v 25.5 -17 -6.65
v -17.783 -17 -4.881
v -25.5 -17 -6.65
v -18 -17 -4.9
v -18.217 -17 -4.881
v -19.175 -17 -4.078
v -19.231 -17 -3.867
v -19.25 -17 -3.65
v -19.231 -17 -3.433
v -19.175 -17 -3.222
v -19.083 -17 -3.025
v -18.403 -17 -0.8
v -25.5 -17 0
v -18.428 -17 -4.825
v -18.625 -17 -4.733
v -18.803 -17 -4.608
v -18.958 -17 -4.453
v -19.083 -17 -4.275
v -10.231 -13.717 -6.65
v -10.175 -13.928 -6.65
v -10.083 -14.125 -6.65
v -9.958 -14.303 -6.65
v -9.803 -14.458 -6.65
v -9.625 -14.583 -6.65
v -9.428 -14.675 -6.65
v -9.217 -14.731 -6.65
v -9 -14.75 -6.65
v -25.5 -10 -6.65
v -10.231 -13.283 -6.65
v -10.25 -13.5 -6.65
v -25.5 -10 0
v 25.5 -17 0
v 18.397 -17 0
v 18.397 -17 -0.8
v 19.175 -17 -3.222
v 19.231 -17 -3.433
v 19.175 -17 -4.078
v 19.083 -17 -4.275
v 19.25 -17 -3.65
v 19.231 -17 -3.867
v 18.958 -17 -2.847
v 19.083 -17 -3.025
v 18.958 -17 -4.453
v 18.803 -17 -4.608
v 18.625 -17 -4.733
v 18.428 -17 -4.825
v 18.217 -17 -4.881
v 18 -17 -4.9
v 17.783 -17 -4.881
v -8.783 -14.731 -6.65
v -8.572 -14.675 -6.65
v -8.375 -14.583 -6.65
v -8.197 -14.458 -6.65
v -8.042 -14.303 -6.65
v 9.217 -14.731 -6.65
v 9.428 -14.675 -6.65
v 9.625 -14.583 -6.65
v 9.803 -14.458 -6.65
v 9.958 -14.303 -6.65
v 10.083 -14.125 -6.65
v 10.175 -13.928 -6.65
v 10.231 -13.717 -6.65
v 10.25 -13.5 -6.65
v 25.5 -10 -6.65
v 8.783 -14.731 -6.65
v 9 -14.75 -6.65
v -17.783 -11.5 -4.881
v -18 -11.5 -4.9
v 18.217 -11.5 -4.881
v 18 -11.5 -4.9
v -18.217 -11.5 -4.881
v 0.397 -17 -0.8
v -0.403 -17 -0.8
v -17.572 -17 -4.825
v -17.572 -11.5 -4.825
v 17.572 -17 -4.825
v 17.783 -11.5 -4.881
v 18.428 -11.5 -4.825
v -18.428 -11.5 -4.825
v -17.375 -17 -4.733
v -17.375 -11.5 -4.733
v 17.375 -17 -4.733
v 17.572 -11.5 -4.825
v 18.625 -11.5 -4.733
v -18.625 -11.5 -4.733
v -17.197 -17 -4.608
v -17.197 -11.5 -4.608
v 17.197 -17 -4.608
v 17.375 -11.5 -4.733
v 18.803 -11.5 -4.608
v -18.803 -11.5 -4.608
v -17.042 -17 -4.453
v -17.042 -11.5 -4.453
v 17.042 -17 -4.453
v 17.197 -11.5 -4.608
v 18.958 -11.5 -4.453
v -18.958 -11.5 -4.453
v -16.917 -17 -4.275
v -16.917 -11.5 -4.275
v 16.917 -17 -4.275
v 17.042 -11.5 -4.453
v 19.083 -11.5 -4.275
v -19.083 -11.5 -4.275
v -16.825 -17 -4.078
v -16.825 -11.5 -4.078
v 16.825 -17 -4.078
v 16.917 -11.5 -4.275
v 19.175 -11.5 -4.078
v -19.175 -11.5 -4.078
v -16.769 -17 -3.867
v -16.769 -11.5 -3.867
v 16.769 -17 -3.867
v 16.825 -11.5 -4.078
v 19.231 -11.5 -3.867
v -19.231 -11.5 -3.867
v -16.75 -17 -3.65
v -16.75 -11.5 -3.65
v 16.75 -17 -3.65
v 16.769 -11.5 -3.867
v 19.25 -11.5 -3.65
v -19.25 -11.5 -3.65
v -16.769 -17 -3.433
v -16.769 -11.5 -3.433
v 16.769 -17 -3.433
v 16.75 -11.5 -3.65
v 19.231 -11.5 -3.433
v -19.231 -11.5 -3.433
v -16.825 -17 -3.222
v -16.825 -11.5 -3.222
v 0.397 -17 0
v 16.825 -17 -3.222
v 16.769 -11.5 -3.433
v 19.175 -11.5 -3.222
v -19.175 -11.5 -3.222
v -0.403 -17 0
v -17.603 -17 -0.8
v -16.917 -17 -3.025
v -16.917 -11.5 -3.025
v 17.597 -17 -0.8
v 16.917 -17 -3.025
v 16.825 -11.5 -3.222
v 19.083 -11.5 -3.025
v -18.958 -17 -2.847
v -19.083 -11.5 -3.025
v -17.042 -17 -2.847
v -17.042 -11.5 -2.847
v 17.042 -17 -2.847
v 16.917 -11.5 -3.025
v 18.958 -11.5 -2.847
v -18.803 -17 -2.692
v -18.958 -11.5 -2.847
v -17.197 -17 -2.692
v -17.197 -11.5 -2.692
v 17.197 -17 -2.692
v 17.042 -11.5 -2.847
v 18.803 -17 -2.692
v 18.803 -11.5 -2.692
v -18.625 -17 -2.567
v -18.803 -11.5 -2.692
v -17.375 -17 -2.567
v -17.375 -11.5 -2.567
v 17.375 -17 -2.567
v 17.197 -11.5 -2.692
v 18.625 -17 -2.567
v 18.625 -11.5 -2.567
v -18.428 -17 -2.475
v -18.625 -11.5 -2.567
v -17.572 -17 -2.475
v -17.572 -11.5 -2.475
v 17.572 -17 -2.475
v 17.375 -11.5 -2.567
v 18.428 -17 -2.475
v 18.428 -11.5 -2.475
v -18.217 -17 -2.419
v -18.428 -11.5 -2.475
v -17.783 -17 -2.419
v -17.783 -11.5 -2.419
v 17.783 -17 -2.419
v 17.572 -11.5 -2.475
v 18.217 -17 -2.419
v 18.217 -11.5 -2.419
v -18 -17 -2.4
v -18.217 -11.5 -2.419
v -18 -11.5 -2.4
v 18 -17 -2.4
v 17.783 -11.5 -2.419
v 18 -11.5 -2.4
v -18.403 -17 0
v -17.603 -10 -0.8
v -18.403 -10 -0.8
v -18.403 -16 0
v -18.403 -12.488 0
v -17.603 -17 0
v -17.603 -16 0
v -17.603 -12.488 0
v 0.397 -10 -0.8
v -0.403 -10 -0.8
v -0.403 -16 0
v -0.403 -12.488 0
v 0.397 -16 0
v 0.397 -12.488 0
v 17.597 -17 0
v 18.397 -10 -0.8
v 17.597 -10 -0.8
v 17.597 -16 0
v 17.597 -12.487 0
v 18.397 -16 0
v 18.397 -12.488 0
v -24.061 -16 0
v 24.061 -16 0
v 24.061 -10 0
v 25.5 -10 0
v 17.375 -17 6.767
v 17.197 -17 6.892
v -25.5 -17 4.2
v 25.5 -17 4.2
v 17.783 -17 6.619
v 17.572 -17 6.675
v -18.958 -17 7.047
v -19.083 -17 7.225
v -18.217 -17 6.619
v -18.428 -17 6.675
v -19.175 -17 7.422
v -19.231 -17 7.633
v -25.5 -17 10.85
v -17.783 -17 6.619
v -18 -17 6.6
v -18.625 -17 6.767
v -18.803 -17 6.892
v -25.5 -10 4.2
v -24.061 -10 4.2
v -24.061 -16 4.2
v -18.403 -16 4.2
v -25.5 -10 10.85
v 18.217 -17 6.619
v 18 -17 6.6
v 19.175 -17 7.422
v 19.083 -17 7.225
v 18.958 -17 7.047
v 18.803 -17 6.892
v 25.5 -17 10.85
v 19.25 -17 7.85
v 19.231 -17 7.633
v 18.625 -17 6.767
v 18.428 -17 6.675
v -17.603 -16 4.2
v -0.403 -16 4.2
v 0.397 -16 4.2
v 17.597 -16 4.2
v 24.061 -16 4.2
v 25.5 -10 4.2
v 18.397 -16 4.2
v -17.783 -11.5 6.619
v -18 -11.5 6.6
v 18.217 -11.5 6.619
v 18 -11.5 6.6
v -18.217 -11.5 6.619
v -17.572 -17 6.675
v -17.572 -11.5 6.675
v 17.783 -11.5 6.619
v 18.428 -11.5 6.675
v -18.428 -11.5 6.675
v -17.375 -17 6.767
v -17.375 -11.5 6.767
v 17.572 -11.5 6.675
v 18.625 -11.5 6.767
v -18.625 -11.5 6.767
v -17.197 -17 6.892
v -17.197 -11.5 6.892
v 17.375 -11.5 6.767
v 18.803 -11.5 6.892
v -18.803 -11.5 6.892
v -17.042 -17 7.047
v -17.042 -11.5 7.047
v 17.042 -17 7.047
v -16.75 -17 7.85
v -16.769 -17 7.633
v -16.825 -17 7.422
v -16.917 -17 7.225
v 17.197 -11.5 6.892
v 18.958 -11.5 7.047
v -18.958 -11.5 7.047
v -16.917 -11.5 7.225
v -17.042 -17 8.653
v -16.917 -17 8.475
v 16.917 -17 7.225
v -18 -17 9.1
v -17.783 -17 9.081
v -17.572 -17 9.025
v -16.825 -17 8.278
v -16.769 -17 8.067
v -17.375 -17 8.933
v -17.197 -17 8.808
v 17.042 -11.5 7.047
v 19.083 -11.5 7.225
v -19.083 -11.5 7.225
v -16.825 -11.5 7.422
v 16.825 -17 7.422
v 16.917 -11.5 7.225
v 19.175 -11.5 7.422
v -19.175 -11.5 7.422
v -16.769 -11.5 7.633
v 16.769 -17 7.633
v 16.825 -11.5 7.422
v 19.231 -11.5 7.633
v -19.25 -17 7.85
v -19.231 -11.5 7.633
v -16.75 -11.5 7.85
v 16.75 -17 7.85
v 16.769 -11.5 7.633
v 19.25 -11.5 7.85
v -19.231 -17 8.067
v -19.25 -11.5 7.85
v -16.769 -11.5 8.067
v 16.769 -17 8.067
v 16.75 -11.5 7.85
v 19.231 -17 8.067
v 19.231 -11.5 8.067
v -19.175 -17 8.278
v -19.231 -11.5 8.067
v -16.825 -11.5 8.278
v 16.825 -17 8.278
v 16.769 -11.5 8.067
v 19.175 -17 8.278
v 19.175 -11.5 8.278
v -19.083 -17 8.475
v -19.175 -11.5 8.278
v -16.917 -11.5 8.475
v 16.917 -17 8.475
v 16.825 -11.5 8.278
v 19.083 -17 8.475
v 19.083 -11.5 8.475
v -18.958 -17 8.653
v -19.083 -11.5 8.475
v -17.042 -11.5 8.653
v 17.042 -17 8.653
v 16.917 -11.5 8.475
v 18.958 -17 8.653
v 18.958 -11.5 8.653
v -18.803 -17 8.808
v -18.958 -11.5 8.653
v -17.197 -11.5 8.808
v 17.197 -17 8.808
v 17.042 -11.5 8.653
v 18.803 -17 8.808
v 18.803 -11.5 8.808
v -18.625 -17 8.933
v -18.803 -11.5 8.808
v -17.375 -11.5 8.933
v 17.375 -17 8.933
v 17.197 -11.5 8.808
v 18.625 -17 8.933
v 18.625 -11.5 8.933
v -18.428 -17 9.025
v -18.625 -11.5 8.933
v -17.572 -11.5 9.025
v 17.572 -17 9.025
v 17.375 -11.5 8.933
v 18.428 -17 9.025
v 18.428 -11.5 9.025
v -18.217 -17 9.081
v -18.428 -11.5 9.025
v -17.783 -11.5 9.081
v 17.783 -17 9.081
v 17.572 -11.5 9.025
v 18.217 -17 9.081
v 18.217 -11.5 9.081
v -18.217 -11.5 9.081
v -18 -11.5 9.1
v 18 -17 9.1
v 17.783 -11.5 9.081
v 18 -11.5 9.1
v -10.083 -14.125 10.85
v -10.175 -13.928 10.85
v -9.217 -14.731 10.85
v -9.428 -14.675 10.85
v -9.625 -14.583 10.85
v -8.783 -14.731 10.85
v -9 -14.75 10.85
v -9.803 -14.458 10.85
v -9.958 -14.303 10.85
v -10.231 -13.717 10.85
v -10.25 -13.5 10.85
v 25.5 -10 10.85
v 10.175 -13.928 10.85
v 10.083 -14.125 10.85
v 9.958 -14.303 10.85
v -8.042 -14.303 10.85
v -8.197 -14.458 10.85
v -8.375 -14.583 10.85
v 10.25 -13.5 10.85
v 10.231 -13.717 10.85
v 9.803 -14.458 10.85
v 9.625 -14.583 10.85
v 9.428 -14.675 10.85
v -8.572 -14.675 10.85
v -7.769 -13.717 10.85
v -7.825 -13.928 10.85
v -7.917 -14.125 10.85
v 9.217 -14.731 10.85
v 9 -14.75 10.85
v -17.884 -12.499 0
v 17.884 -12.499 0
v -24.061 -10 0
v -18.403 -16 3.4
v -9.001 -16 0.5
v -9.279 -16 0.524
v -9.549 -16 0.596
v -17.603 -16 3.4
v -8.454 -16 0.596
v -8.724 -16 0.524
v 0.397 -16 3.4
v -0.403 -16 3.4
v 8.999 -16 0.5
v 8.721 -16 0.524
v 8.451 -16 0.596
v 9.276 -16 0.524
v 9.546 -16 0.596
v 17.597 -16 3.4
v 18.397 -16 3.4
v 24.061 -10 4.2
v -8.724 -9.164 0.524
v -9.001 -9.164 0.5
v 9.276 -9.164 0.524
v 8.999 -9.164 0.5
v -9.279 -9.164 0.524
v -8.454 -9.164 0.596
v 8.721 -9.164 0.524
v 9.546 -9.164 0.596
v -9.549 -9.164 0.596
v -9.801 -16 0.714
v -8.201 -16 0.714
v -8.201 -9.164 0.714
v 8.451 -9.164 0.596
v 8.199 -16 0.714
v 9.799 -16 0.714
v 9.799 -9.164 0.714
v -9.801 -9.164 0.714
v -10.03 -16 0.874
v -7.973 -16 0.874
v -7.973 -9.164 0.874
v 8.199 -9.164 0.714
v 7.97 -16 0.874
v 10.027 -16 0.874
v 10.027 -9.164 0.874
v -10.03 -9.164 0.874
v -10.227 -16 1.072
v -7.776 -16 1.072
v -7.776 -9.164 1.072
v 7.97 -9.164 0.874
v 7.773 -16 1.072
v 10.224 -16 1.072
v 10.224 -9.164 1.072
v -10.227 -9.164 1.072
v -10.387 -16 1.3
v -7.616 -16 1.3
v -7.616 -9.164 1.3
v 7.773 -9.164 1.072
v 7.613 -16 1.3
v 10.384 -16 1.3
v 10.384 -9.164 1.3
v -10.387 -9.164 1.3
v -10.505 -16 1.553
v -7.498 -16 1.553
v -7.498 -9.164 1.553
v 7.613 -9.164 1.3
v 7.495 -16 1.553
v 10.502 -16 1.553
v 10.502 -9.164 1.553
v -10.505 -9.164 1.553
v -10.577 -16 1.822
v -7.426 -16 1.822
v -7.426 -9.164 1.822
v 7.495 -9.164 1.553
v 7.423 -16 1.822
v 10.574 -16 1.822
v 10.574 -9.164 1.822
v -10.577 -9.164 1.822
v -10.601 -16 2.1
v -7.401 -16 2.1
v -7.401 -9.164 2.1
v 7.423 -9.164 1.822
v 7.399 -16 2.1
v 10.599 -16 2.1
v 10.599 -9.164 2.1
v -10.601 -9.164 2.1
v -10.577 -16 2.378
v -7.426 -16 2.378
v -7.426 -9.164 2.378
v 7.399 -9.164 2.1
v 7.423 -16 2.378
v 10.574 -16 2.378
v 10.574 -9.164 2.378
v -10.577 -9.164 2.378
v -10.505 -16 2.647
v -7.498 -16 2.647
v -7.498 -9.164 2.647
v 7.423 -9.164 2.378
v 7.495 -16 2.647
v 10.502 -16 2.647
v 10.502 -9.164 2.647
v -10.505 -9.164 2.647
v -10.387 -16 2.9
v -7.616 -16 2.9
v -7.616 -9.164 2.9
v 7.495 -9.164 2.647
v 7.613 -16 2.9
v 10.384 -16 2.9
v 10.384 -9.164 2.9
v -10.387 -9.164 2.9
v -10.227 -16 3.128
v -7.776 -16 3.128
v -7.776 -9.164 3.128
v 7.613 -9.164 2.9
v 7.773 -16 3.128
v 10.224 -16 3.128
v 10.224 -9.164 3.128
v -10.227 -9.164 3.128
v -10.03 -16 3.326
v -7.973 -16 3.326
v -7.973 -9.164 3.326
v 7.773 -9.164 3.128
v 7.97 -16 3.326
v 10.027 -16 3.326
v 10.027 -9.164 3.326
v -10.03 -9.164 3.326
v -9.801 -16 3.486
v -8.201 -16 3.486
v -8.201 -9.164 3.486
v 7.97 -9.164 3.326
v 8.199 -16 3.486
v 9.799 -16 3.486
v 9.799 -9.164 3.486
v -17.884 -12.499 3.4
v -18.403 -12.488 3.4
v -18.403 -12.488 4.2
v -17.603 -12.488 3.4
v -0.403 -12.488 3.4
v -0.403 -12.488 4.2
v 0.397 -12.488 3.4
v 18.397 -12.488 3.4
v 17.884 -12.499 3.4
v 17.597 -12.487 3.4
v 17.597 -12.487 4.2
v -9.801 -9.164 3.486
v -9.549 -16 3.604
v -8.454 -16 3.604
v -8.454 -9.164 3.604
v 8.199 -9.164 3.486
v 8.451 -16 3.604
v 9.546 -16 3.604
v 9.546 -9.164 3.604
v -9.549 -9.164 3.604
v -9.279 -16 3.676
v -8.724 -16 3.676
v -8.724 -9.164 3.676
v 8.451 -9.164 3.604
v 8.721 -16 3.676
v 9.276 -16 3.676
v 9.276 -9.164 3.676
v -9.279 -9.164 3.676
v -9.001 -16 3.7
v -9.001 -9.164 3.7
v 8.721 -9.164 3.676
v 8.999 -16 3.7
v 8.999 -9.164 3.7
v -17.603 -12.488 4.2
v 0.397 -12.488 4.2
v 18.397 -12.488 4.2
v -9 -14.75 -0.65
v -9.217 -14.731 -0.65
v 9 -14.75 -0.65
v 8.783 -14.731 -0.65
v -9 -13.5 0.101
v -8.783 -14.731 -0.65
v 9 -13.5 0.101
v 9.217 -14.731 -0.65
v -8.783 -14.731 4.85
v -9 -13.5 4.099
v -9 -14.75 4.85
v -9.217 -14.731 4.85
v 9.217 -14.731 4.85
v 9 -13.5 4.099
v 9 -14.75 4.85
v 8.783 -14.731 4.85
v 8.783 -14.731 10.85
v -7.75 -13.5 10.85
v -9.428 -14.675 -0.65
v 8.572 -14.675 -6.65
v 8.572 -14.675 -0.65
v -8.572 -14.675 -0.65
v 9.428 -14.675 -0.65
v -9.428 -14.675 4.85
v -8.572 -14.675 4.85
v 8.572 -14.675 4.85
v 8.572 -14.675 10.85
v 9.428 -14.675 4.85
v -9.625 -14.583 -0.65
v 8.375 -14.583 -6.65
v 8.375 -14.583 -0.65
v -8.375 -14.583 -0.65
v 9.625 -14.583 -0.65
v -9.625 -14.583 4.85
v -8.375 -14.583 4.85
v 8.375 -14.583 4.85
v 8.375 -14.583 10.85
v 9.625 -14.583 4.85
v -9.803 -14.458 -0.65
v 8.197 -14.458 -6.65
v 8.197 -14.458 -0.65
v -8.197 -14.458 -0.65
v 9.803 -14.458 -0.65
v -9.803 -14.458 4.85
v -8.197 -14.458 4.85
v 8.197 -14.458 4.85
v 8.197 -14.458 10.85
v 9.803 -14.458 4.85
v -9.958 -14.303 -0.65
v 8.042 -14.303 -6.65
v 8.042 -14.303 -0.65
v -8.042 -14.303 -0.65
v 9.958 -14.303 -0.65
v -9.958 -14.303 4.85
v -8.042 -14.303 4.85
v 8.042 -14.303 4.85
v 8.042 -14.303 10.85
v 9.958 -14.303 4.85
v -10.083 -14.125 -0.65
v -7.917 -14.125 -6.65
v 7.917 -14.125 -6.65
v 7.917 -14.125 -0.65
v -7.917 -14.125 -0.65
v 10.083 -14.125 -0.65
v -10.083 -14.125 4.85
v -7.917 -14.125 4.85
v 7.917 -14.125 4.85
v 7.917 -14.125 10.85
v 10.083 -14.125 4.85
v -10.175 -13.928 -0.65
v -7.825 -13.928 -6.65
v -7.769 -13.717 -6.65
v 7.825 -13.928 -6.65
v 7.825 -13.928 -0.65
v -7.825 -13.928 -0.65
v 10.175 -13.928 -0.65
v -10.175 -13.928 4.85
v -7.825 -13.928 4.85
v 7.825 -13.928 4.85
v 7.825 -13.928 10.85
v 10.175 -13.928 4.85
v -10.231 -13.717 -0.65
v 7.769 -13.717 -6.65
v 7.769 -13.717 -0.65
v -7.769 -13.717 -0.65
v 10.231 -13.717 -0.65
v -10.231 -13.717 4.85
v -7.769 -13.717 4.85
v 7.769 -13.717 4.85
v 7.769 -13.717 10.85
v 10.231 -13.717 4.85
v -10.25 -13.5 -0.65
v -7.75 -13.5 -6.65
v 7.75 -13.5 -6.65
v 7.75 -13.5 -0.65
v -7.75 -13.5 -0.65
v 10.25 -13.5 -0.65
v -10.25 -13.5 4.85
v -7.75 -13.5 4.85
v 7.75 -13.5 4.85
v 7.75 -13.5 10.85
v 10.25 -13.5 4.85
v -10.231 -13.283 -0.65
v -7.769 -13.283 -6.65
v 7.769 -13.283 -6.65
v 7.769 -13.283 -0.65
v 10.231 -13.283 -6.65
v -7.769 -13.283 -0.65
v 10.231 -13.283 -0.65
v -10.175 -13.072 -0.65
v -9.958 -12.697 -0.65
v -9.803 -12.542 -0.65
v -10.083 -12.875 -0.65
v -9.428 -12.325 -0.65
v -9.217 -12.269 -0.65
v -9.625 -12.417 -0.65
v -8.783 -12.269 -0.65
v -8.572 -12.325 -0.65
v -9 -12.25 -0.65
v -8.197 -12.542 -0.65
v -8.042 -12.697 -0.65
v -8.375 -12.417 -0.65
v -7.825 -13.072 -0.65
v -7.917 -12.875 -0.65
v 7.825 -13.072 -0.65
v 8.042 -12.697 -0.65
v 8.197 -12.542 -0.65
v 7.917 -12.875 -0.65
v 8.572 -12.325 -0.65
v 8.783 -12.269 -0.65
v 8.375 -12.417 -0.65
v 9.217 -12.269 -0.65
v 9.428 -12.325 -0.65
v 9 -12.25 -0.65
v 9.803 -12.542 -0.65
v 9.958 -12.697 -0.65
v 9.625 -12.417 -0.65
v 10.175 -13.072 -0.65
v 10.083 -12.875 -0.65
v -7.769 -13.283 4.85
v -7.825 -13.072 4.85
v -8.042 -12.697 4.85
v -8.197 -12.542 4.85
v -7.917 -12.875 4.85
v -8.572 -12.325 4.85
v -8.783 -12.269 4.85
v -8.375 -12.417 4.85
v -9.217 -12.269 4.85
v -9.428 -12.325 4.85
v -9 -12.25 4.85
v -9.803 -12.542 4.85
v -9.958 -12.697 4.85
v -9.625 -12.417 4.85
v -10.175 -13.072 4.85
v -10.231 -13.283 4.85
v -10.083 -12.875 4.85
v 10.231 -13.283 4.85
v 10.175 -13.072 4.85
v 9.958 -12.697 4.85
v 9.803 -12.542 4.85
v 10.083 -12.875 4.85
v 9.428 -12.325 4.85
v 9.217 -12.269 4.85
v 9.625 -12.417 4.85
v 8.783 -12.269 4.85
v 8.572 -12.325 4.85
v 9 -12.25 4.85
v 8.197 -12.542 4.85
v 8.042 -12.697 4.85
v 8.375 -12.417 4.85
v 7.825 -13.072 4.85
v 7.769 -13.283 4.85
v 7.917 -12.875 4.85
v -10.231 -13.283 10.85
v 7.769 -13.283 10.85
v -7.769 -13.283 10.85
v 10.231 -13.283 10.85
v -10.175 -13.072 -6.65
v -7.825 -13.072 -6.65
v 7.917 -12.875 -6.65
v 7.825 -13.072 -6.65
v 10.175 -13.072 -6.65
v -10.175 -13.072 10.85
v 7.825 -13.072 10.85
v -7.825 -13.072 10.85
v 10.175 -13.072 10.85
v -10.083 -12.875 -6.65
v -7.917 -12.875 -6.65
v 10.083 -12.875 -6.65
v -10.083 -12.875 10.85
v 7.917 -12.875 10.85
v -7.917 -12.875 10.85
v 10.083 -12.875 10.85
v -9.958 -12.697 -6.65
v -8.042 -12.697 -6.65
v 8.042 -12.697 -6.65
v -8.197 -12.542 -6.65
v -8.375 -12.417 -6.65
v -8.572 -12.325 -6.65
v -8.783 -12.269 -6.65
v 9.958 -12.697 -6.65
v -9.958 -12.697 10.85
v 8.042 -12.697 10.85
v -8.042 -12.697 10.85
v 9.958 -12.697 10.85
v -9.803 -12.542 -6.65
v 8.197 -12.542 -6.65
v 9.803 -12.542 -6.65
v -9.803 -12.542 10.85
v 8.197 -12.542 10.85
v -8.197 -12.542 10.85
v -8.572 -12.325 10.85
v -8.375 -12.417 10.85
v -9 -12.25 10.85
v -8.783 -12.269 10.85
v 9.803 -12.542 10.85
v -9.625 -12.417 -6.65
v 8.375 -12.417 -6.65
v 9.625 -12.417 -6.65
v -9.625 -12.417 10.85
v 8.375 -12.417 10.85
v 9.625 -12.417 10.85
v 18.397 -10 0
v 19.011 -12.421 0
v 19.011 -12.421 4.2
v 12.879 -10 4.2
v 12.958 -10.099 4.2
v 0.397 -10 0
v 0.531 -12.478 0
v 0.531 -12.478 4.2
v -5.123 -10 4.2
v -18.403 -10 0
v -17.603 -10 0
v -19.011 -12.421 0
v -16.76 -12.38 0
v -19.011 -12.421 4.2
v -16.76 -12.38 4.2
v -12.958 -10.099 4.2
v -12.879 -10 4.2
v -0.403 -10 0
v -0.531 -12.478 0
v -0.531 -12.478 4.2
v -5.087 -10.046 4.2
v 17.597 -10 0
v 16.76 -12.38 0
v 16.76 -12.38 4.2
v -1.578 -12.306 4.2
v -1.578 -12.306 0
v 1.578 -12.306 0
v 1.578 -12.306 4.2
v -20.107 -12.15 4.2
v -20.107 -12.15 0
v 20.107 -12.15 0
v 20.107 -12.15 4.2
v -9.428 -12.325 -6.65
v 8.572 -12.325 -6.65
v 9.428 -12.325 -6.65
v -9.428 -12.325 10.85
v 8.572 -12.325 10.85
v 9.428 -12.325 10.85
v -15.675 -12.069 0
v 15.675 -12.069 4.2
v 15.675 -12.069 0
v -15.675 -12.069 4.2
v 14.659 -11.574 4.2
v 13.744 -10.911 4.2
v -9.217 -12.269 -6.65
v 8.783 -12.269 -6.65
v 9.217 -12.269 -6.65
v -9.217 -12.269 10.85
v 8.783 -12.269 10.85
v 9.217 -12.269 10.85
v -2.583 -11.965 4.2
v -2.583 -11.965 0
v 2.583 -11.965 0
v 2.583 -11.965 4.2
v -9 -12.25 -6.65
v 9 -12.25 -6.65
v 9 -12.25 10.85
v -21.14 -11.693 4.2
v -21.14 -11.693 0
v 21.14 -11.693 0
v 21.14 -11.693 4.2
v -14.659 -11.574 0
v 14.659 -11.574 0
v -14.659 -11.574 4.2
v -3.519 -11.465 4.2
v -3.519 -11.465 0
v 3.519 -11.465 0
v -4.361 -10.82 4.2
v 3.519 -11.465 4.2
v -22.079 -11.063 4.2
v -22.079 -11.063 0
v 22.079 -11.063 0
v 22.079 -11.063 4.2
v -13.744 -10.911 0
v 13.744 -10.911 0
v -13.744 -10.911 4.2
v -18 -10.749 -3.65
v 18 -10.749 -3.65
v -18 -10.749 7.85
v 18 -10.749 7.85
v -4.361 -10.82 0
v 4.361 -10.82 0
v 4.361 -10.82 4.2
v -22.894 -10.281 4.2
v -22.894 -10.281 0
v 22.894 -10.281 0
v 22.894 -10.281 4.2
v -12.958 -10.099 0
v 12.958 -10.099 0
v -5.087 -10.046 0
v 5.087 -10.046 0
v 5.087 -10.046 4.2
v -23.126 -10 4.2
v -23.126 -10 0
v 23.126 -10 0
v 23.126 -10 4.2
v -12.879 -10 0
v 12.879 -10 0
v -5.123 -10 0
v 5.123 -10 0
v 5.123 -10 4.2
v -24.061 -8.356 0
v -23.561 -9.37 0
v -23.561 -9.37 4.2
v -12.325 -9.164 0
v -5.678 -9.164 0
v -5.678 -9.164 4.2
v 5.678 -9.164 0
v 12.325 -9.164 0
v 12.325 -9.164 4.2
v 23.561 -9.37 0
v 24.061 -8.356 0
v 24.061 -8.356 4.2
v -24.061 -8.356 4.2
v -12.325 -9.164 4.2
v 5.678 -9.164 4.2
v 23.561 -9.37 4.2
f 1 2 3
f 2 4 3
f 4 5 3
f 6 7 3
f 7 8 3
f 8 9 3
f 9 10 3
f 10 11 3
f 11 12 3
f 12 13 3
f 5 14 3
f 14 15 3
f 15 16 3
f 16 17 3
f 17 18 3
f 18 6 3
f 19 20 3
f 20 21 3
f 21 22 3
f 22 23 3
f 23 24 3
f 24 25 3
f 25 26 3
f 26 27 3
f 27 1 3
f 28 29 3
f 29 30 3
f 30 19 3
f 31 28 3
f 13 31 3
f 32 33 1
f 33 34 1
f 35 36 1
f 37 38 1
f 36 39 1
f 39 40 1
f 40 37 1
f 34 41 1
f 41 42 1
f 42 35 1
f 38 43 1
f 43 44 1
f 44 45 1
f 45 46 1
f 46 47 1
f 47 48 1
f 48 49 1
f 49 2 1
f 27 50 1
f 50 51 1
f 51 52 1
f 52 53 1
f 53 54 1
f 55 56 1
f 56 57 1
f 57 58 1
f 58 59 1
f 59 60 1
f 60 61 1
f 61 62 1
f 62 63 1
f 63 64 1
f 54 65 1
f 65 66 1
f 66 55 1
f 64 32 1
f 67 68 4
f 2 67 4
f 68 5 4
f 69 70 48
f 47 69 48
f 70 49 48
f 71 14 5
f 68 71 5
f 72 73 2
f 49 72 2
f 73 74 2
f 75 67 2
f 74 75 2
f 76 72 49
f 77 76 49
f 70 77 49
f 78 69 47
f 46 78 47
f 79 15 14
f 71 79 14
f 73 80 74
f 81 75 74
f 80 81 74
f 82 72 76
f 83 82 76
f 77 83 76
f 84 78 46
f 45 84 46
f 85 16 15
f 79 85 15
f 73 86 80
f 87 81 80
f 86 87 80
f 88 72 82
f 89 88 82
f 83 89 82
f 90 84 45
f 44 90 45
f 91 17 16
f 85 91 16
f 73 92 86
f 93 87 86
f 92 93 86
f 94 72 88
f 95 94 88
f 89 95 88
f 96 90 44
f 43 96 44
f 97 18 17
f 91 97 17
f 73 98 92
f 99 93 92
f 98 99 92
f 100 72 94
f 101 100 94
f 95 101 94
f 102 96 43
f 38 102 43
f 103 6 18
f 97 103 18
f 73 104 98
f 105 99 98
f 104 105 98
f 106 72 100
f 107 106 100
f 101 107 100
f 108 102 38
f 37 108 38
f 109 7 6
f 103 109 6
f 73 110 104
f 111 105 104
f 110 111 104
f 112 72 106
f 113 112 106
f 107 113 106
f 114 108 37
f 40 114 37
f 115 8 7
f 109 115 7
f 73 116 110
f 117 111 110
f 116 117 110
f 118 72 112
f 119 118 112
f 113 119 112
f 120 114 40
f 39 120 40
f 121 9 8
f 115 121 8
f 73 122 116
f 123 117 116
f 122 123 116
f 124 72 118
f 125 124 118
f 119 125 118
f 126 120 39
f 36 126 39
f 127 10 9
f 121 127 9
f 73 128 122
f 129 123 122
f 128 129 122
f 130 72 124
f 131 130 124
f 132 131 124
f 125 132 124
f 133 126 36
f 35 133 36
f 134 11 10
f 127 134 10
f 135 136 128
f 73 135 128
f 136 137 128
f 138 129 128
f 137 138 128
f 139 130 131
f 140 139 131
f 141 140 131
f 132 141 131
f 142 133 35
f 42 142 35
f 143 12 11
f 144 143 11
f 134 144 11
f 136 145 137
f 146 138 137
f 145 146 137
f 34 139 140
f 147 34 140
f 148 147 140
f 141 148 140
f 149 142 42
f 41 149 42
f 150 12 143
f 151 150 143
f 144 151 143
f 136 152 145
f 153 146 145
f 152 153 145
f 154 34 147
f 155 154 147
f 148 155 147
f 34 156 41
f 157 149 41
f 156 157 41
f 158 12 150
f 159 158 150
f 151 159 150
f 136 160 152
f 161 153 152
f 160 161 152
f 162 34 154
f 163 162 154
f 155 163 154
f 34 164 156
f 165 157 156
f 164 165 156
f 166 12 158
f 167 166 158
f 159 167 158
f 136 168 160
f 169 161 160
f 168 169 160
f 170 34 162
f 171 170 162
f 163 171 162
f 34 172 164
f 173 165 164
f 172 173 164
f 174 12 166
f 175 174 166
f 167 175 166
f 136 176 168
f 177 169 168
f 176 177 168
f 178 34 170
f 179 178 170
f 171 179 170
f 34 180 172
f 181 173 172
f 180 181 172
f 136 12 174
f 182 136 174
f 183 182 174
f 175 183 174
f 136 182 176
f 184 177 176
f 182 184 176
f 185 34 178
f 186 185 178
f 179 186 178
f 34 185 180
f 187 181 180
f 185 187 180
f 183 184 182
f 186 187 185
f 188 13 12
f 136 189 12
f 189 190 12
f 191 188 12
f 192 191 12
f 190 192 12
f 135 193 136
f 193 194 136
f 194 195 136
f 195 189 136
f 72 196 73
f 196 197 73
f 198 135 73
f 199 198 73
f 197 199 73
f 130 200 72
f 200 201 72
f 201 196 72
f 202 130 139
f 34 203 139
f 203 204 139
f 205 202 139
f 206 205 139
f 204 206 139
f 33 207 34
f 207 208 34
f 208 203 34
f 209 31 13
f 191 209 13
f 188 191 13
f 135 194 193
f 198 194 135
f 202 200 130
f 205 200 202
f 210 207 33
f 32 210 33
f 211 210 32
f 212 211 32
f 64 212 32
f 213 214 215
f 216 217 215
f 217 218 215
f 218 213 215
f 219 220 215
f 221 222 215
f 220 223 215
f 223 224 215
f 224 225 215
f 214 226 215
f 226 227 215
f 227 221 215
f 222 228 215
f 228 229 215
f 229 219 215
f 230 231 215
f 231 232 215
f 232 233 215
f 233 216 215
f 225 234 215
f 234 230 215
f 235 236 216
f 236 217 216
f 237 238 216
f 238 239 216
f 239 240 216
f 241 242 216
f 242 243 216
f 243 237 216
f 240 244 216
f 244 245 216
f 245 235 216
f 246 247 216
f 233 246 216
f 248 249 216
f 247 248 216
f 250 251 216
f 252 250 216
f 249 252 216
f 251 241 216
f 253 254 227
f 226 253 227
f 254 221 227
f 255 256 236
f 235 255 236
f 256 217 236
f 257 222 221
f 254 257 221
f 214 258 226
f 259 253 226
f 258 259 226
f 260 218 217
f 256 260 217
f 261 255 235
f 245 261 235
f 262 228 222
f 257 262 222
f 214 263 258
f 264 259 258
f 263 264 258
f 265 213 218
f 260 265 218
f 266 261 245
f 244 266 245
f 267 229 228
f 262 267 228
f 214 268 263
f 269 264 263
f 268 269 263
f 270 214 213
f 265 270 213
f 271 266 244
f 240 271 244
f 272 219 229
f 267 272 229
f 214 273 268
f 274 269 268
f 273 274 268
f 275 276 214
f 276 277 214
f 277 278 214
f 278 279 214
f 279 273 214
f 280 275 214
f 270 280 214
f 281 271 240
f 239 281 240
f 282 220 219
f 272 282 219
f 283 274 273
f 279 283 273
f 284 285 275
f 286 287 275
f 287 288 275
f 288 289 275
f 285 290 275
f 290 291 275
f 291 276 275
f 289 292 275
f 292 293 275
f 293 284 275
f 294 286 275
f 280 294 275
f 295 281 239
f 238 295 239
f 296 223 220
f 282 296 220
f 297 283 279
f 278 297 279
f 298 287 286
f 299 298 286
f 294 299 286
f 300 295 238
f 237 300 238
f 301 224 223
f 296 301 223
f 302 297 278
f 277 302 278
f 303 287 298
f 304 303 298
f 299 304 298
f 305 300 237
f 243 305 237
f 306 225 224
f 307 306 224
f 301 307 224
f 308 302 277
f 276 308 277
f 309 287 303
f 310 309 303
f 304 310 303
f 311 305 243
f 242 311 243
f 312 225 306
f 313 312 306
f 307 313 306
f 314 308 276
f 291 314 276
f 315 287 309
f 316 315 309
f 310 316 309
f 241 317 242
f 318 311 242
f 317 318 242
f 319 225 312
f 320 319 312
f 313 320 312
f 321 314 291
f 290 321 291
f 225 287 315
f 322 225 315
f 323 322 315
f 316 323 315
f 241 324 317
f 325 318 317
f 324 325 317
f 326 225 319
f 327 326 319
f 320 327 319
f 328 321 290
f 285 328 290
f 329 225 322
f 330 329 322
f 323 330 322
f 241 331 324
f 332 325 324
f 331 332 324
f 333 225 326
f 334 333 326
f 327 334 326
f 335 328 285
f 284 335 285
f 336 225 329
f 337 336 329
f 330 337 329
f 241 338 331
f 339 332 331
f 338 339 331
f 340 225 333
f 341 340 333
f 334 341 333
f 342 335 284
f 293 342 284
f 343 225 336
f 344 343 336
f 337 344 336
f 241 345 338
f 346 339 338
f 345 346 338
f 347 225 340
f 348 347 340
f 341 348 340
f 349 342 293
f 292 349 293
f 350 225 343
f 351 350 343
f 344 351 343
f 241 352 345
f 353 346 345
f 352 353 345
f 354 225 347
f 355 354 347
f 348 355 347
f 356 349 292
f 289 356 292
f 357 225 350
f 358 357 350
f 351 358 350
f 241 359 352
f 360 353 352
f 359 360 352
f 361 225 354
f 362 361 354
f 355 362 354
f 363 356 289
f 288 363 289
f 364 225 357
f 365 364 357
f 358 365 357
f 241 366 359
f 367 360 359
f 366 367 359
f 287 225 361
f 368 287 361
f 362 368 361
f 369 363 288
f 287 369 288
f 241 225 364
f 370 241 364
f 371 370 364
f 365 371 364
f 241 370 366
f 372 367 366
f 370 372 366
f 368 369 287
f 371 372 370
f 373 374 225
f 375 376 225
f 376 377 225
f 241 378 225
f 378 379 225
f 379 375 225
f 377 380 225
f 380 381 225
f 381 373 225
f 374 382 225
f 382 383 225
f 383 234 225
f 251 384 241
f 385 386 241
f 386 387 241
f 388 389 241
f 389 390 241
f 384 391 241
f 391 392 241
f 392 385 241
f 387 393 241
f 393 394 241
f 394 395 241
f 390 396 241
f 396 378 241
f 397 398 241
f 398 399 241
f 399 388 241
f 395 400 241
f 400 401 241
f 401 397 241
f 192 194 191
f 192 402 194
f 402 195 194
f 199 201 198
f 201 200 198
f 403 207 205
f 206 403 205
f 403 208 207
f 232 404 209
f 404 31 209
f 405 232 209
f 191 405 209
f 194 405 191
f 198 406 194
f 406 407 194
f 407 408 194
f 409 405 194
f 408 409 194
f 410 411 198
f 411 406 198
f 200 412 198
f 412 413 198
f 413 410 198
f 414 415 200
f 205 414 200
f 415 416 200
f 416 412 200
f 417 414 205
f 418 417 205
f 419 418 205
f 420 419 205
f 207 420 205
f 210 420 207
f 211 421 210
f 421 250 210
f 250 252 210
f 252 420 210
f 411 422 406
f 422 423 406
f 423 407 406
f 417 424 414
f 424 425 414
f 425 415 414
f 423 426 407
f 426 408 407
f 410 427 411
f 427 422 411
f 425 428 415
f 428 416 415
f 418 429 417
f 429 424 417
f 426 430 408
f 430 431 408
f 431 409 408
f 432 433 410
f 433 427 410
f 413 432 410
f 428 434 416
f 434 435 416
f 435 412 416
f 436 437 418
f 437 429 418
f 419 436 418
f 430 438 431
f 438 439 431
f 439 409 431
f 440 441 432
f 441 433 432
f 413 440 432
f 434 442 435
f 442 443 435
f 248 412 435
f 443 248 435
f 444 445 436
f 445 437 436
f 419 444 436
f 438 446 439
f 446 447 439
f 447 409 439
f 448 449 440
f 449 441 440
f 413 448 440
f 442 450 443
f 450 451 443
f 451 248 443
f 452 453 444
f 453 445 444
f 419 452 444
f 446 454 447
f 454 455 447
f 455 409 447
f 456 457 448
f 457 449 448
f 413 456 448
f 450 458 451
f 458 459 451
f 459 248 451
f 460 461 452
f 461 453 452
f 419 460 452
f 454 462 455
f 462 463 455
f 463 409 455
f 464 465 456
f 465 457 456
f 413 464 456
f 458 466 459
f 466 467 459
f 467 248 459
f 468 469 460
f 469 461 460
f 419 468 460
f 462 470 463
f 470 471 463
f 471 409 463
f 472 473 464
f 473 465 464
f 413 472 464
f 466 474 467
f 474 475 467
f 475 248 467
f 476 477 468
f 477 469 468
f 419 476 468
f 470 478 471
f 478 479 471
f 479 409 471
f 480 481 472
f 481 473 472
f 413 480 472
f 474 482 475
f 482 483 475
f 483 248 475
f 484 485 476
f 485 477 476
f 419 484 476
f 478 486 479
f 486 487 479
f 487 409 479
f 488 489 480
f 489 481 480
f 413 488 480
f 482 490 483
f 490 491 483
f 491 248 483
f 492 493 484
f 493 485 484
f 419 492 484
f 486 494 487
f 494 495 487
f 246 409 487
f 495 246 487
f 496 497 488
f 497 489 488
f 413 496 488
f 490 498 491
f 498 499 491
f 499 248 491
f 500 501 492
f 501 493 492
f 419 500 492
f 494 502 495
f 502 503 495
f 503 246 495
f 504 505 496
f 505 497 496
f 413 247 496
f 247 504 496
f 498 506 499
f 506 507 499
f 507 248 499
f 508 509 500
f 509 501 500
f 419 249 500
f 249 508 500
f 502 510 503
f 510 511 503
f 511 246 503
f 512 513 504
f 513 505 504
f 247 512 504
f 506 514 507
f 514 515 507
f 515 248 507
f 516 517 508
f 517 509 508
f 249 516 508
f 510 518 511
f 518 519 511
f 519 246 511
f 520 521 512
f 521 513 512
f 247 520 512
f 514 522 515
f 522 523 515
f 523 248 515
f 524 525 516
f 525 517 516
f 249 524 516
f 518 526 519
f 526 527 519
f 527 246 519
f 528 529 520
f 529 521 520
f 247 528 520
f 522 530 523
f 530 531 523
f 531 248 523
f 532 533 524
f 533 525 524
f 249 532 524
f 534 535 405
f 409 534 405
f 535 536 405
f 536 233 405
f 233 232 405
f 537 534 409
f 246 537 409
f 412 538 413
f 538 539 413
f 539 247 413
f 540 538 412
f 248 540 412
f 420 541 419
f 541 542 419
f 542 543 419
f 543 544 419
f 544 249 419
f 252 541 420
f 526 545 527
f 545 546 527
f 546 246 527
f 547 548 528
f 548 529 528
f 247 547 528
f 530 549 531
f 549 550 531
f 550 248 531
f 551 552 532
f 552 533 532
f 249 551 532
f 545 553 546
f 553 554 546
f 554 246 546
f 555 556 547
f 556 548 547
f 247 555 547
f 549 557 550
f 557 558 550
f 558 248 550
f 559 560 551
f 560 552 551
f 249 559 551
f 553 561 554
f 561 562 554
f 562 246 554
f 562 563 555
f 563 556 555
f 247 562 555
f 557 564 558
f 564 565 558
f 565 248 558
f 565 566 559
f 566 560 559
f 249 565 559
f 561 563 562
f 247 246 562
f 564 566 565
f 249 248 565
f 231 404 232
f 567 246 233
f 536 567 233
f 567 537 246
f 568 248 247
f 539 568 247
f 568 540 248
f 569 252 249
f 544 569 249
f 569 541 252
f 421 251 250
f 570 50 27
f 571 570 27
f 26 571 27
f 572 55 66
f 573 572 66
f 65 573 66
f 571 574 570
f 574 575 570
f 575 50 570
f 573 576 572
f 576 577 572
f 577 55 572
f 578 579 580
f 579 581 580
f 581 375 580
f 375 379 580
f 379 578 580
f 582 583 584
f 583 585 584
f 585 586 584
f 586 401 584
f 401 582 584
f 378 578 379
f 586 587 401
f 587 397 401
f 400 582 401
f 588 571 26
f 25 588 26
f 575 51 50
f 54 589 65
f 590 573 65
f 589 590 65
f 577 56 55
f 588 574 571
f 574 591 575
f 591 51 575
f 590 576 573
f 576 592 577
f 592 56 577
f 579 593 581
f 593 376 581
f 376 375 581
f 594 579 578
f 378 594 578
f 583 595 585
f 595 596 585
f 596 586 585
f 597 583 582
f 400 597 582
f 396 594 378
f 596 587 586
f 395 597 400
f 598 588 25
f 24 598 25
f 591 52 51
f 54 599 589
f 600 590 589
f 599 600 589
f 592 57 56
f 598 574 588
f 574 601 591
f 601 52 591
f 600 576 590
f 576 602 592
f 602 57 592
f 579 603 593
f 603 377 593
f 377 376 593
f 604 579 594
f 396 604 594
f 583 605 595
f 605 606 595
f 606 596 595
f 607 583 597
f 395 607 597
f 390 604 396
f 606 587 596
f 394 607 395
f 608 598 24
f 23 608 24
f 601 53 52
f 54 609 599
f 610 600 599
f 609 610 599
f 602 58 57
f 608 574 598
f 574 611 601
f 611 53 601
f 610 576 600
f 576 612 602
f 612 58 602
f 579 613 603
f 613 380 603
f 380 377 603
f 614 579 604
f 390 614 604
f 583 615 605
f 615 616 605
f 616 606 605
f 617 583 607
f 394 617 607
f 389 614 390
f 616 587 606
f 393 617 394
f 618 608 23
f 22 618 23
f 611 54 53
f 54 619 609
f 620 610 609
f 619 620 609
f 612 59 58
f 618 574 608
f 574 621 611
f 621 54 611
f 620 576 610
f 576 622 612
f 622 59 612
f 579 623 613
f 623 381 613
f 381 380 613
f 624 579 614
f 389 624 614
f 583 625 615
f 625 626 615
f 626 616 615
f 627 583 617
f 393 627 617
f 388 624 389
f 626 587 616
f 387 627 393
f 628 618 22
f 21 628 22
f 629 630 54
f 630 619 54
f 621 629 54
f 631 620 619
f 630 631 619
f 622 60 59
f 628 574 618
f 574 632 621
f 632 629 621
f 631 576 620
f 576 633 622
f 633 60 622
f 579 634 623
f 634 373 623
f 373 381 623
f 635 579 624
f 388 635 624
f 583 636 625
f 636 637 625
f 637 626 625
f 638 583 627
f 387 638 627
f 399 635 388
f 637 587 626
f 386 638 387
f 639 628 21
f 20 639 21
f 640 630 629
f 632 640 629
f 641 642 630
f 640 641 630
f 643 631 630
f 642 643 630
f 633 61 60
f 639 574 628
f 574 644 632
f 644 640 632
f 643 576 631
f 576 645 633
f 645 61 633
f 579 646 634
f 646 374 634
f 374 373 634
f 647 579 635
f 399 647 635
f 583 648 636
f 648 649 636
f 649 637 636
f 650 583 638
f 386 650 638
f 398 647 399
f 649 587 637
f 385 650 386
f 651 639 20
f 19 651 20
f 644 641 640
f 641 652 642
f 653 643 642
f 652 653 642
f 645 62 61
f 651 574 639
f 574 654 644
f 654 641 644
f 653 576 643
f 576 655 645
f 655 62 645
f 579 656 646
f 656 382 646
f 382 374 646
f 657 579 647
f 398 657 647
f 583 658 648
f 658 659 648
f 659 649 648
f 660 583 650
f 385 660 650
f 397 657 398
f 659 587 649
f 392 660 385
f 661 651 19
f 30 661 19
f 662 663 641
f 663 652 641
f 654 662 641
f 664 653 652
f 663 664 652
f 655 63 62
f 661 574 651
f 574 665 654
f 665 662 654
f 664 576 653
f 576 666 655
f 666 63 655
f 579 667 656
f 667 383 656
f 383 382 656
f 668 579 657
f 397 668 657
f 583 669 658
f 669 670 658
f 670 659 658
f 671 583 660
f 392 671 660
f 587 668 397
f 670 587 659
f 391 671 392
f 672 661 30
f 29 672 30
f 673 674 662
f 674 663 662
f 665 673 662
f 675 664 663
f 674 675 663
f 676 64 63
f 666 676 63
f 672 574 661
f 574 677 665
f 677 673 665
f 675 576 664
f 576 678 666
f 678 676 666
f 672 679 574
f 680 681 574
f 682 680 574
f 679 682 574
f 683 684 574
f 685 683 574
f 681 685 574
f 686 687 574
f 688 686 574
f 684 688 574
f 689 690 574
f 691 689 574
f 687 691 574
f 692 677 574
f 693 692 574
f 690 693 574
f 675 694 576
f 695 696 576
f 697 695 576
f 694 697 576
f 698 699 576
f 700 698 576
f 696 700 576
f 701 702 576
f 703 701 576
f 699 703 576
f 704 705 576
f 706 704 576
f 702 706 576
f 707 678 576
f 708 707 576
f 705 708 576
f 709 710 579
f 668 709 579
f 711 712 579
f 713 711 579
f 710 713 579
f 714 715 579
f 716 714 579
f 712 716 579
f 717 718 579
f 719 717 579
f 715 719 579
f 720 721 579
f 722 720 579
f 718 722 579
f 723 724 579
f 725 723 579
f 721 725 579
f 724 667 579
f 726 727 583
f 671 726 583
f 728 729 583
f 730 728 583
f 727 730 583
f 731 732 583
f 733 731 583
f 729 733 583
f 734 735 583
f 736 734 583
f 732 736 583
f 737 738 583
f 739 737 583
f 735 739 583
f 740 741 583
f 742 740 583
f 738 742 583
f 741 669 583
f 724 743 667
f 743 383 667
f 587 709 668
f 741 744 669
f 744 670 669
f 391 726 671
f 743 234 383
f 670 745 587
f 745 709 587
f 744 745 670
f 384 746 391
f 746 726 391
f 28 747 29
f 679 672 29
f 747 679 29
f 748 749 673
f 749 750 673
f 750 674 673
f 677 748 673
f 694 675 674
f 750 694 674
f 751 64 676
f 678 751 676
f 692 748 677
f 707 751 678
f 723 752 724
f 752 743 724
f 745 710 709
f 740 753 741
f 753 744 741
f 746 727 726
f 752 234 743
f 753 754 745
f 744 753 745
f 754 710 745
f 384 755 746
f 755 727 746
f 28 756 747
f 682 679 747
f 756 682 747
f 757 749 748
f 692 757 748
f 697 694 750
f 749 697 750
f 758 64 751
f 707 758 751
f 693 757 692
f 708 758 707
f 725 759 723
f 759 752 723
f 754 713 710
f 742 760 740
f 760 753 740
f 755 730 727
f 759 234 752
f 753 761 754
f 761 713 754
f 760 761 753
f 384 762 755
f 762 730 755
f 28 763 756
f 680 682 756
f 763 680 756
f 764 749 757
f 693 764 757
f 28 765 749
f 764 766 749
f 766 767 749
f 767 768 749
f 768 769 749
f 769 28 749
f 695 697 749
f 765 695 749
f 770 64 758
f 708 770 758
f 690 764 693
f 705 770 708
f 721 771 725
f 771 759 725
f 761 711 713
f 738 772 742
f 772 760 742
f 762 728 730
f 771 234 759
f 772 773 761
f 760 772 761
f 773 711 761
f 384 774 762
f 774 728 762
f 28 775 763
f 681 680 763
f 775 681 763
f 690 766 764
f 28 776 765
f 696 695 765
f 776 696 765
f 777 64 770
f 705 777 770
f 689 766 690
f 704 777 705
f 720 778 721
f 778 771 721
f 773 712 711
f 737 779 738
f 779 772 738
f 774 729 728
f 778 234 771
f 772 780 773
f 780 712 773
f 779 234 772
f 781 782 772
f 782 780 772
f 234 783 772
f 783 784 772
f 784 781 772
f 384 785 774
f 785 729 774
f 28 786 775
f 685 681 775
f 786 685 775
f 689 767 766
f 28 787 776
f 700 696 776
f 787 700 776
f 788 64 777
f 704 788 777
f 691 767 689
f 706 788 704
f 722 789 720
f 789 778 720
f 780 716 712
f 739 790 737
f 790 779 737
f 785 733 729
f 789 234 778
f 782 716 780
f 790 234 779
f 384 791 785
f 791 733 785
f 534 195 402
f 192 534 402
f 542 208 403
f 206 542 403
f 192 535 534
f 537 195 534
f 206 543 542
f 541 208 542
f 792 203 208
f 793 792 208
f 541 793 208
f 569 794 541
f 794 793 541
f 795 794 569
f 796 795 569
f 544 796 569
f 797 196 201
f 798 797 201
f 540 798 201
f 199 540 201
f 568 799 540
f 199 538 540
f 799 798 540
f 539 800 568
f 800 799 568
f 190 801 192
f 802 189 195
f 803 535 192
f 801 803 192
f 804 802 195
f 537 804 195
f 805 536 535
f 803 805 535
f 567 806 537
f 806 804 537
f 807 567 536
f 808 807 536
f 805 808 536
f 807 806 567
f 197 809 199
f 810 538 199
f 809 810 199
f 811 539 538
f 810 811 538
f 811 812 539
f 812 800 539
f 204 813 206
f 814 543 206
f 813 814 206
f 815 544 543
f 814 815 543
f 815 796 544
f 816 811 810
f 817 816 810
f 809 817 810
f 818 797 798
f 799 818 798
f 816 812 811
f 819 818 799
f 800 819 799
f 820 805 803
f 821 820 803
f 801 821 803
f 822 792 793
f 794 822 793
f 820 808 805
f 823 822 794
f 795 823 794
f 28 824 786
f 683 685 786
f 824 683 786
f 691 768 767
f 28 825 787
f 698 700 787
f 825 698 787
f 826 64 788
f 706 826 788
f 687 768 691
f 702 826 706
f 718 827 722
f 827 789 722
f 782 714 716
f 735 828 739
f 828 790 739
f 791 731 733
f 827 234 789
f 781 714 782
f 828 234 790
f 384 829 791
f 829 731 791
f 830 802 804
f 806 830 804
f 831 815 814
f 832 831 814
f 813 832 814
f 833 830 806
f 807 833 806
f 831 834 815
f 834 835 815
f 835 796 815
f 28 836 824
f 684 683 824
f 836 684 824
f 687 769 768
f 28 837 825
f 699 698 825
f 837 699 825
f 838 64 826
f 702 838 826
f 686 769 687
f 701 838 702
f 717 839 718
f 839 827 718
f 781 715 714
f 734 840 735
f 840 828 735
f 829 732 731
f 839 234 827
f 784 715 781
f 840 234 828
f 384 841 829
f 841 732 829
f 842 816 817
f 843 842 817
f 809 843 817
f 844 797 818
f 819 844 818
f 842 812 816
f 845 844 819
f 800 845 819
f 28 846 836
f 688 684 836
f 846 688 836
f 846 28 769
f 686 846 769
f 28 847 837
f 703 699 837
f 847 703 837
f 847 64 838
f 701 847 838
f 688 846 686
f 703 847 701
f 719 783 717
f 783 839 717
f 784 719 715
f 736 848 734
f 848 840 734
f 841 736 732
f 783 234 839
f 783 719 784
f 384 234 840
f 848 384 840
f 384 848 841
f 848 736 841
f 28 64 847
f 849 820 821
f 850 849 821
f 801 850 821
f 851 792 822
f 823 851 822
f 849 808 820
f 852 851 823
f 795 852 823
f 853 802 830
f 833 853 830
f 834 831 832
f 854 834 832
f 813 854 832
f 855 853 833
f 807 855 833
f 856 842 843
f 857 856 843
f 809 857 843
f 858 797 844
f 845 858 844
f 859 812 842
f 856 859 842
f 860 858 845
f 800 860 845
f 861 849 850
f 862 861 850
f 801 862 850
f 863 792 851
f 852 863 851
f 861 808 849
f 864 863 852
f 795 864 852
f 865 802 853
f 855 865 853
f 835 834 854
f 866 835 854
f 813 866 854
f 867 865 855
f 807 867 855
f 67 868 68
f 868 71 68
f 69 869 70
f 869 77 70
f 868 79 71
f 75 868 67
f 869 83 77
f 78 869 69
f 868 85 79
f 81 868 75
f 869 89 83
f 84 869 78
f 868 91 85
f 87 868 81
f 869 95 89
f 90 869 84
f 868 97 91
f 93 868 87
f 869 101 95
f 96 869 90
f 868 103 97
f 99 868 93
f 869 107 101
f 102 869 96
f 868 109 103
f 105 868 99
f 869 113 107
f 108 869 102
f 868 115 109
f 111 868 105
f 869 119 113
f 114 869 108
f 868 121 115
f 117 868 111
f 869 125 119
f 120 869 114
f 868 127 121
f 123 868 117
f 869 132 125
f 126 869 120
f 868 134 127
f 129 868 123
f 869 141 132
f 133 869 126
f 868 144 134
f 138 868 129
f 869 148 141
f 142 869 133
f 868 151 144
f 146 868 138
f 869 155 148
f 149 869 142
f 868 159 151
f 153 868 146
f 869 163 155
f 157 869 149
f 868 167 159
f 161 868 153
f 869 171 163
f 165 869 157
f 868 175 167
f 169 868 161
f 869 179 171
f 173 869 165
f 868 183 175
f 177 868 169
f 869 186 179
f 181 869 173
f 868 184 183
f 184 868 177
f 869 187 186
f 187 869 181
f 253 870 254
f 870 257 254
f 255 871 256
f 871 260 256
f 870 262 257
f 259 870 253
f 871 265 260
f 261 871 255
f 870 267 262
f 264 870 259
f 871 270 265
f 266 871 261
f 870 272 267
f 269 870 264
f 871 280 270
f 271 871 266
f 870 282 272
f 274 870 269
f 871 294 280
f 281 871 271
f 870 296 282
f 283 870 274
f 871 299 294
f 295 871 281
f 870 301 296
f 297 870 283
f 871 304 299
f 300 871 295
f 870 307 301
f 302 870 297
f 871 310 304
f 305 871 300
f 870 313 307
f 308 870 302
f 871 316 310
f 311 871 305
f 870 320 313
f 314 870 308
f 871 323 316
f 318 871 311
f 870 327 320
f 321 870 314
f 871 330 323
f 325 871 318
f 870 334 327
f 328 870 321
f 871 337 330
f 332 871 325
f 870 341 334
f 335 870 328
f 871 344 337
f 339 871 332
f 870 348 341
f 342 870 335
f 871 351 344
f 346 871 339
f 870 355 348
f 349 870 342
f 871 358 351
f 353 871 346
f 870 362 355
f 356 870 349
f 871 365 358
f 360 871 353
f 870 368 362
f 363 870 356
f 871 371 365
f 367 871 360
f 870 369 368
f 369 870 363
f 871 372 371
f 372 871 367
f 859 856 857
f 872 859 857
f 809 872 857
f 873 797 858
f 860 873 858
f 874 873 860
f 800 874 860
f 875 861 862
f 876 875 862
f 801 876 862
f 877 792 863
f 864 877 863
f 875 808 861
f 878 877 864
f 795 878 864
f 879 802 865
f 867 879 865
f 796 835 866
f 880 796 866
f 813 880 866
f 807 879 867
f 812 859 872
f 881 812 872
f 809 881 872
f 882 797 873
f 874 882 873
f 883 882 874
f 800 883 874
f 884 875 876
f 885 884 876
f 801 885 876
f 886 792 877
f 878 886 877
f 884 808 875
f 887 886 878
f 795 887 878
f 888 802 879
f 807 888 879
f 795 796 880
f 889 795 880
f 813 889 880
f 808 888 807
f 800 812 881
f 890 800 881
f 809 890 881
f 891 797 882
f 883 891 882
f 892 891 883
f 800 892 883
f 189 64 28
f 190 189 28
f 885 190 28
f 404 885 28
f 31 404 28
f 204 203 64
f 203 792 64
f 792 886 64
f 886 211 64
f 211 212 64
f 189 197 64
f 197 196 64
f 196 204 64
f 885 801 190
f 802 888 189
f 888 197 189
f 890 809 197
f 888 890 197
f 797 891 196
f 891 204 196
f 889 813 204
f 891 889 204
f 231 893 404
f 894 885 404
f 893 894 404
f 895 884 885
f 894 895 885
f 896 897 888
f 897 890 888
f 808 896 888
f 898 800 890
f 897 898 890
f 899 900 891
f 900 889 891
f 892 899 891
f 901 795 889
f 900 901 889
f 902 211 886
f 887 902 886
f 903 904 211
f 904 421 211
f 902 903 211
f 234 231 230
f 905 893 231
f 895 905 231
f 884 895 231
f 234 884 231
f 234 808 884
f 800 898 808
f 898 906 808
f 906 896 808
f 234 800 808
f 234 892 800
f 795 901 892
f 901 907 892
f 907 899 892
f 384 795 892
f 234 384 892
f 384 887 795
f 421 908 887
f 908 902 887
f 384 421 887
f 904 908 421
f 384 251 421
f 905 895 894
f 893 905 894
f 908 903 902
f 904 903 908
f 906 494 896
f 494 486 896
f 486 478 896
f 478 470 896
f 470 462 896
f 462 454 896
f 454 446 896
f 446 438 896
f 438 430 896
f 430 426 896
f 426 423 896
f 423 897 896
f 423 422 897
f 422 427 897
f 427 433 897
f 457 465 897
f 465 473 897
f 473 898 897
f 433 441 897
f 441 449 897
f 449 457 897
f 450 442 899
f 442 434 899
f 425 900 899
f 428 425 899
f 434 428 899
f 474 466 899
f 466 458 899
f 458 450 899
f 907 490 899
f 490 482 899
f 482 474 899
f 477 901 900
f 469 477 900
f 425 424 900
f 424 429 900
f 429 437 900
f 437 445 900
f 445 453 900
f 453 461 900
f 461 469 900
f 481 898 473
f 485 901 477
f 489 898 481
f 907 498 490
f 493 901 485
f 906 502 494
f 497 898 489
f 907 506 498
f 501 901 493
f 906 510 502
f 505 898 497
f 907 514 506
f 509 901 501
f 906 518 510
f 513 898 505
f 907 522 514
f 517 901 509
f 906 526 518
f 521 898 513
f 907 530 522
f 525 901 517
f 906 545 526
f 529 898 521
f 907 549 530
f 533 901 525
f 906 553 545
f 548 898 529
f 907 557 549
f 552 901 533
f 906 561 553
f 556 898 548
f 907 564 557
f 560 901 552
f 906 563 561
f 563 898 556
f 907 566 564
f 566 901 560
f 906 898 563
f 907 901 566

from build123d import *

# Parameters (mm, degrees)
BOSS_EXTRUDE1_DEPTH              = 4.2
SKETCH3_R                        = 1.6
CUT_EXTRUDE3_DEPTH               = 26.650611325
LPATTERN1_COUNT                  = 2
LPATTERN1_PITCH                  = 18
SKETCH6_W                        = 51
SKETCH6_H                        = 7
BOSS_EXTRUDE3_DEPTH              = 6.65
SKETCH7_W                        = 0.8
SKETCH7_H                        = 0.8
CUT_EXTRUDE7_DEPTH               = 28.734190536
SKETCH8_W                        = 51
SKETCH8_H                        = 7
BOSS_EXTRUDE4_DEPTH              = 6.65
TAP_DRILL_FOR_M3_TAP1_AT_2_COUNT = 2
TAP_DRILL_FOR_M3_TAP1_AT_2_PITCH = 18
LPATTERN2_COUNT                  = 2
LPATTERN2_PITCH                  = 36
LPATTERN2_COUNT_DIR2             = 2
LPATTERN2_PITCH_DIR2             = 11.5
SKETCH16_W                       = 48.12122682
SKETCH16_H                       = 4.2
CUT_EXTRUDE8_DEPTH               = 1


with BuildPart() as part:
    # Sketch1 → Boss-Extrude1 (new body)
    with BuildSketch(Plane.XY):
        with BuildLine():
            Line((-12.324882265, -9.164137338), (-5.677872392, -9.164137338))
            ThreePointArc((-5.677872392, -9.164137338), (0, -12.5), (5.677872392, -9.164137338))
            Line((5.677872392, -9.164137338), (12.324882265, -9.164137338))
            ThreePointArc((12.324882265, -9.164137338), (18.449107388, -12.484656447), (24.06061341, -8.356341939))
            Line((24.06061341, -8.356341939), (24.06061341, -17))
            Line((24.06061341, -17), (-24.06061341, -17))
            Line((-24.06061341, -17), (-24.06061341, -8.356341939))
            ThreePointArc((-24.06061341, -8.356341939), (-18.449107388, -12.484656447), (-12.324882265, -9.164137338))
        make_face()
    extrude(amount=BOSS_EXTRUDE1_DEPTH)

    # Sketch3 → Cut-Extrude3 (cut, through all)
    with BuildSketch(Plane(origin=(0, -9.164137338, 0), x_dir=(1, 0, 0), z_dir=(0, 1, 0))):
        with Locations(Location((-9.001377329, -2.1, 0), (0, 0, 270))):
            Circle(SKETCH3_R)
    cut_extrude3 = extrude(amount=-CUT_EXTRUDE3_DEPTH, mode=Mode.SUBTRACT)

    # LPattern1: Cut-Extrude3 ×2
    with Locations(*[(i * LPATTERN1_PITCH, 0, 0) for i in range(1, LPATTERN1_COUNT)]):
        add(cut_extrude3, mode=Mode.SUBTRACT)

    # Sketch6 → Boss-Extrude3 (add)
    with BuildSketch(Plane(origin=(0, 0, 0), x_dir=(-1, 0, 0), z_dir=(0, 0, -1))):
        with Locations((0, -13.5)):
            Rectangle(SKETCH6_W, SKETCH6_H)
    extrude(amount=BOSS_EXTRUDE3_DEPTH)

    # Sketch7 → Cut-Extrude7 (cut, through all)
    with BuildSketch(Plane.XZ.offset(17)):
        with Locations((-0.002754658, 3.8)):
            Rectangle(SKETCH7_W, SKETCH7_H)
        with Locations((-18.002754658, -0.4)):
            Rectangle(SKETCH7_W, SKETCH7_H)
        with Locations((-18.002754658, 3.8)):
            Rectangle(SKETCH7_W, SKETCH7_H)
        with Locations((-0.002754658, -0.4)):
            Rectangle(SKETCH7_W, SKETCH7_H)
        with Locations((17.997245342, 3.8)):
            Rectangle(SKETCH7_W, SKETCH7_H)
        with Locations((17.997245342, -0.4)):
            Rectangle(SKETCH7_W, SKETCH7_H)
    extrude(amount=-CUT_EXTRUDE7_DEPTH, mode=Mode.SUBTRACT)

    # Sketch8 → Boss-Extrude4 (add)
    with BuildSketch(Plane.XY.offset(4.2)):
        with Locations((0, -13.5)):
            Rectangle(SKETCH8_W, SKETCH8_H)
    extrude(amount=BOSS_EXTRUDE4_DEPTH)

    # Sketch13 → Tap Drill for M3 Tap1 (revolve, cut)
    with BuildSketch(Plane(origin=(9, -13.5, -6.65), x_dir=(0, 1, 0), z_dir=(1, 0, 0))):
        Polygon((0, 0), (0, 6.751075774), (1.25, 6), (1.25, 0), align=None)
    tap_drill_for_m3_tap1 = revolve(axis=Axis((9, -13.5, -13), (0, 0, 1)), mode=Mode.SUBTRACT)

    # Tap Drill for M3 Tap1 at 2: Tap Drill for M3 Tap1 ×2
    with Locations(*[(-i * TAP_DRILL_FOR_M3_TAP1_AT_2_PITCH, 0, 0) for i in range(1, TAP_DRILL_FOR_M3_TAP1_AT_2_COUNT)]):
        add(tap_drill_for_m3_tap1, mode=Mode.SUBTRACT)

    # Mirror2: Tap Drill for M3 Tap1 across plane
    add(tap_drill_for_m3_tap1.mirror(Plane.XY.offset(2.1)), mode=Mode.SUBTRACT)

    # Mirror2 copy 1 sketch → Mirror2 copy 1 (revolve, cut)
    with BuildSketch(Plane(origin=(-9, -13.5, 10.85), x_dir=(0, 1, 0), z_dir=(1, 0, 0))):
        Polygon((0, 0), (0, -6.751075774), (1.25, -6), (1.25, 0), align=None)
    revolve(axis=Axis((-9, -13.5, 17.2), (0, 0, 1)), mode=Mode.SUBTRACT)

    # Sketch15 → M3 Tapped Hole3 (revolve, cut)
    with BuildSketch(Plane(origin=(-18, -17, 7.85), x_dir=(0, 0, -1), z_dir=(1, 0, 0))):
        Polygon((0, 0), (0, 6.251075774), (1.25, 5.5), (1.25, 0), align=None)
    m3_tapped_hole3 = revolve(axis=Axis((-18, -23.35, 7.85), (0, 1, 0)), mode=Mode.SUBTRACT)

    # LPattern2: M3 Tapped Hole3 2 × 2
    with Locations(*[(i * LPATTERN2_PITCH, 0, -j * LPATTERN2_PITCH_DIR2) for i in range(LPATTERN2_COUNT) for j in range(LPATTERN2_COUNT_DIR2) if (i, j) != (0, 0)]):
        add(m3_tapped_hole3, mode=Mode.SUBTRACT)

    # Sketch16 → Cut-Extrude8 (cut)
    with BuildSketch(Plane.XZ.offset(17)):
        with Locations((0, 2.1)):
            Rectangle(SKETCH16_W, SKETCH16_H)
    extrude(amount=-CUT_EXTRUDE8_DEPTH, mode=Mode.SUBTRACT)


solid = part.part
